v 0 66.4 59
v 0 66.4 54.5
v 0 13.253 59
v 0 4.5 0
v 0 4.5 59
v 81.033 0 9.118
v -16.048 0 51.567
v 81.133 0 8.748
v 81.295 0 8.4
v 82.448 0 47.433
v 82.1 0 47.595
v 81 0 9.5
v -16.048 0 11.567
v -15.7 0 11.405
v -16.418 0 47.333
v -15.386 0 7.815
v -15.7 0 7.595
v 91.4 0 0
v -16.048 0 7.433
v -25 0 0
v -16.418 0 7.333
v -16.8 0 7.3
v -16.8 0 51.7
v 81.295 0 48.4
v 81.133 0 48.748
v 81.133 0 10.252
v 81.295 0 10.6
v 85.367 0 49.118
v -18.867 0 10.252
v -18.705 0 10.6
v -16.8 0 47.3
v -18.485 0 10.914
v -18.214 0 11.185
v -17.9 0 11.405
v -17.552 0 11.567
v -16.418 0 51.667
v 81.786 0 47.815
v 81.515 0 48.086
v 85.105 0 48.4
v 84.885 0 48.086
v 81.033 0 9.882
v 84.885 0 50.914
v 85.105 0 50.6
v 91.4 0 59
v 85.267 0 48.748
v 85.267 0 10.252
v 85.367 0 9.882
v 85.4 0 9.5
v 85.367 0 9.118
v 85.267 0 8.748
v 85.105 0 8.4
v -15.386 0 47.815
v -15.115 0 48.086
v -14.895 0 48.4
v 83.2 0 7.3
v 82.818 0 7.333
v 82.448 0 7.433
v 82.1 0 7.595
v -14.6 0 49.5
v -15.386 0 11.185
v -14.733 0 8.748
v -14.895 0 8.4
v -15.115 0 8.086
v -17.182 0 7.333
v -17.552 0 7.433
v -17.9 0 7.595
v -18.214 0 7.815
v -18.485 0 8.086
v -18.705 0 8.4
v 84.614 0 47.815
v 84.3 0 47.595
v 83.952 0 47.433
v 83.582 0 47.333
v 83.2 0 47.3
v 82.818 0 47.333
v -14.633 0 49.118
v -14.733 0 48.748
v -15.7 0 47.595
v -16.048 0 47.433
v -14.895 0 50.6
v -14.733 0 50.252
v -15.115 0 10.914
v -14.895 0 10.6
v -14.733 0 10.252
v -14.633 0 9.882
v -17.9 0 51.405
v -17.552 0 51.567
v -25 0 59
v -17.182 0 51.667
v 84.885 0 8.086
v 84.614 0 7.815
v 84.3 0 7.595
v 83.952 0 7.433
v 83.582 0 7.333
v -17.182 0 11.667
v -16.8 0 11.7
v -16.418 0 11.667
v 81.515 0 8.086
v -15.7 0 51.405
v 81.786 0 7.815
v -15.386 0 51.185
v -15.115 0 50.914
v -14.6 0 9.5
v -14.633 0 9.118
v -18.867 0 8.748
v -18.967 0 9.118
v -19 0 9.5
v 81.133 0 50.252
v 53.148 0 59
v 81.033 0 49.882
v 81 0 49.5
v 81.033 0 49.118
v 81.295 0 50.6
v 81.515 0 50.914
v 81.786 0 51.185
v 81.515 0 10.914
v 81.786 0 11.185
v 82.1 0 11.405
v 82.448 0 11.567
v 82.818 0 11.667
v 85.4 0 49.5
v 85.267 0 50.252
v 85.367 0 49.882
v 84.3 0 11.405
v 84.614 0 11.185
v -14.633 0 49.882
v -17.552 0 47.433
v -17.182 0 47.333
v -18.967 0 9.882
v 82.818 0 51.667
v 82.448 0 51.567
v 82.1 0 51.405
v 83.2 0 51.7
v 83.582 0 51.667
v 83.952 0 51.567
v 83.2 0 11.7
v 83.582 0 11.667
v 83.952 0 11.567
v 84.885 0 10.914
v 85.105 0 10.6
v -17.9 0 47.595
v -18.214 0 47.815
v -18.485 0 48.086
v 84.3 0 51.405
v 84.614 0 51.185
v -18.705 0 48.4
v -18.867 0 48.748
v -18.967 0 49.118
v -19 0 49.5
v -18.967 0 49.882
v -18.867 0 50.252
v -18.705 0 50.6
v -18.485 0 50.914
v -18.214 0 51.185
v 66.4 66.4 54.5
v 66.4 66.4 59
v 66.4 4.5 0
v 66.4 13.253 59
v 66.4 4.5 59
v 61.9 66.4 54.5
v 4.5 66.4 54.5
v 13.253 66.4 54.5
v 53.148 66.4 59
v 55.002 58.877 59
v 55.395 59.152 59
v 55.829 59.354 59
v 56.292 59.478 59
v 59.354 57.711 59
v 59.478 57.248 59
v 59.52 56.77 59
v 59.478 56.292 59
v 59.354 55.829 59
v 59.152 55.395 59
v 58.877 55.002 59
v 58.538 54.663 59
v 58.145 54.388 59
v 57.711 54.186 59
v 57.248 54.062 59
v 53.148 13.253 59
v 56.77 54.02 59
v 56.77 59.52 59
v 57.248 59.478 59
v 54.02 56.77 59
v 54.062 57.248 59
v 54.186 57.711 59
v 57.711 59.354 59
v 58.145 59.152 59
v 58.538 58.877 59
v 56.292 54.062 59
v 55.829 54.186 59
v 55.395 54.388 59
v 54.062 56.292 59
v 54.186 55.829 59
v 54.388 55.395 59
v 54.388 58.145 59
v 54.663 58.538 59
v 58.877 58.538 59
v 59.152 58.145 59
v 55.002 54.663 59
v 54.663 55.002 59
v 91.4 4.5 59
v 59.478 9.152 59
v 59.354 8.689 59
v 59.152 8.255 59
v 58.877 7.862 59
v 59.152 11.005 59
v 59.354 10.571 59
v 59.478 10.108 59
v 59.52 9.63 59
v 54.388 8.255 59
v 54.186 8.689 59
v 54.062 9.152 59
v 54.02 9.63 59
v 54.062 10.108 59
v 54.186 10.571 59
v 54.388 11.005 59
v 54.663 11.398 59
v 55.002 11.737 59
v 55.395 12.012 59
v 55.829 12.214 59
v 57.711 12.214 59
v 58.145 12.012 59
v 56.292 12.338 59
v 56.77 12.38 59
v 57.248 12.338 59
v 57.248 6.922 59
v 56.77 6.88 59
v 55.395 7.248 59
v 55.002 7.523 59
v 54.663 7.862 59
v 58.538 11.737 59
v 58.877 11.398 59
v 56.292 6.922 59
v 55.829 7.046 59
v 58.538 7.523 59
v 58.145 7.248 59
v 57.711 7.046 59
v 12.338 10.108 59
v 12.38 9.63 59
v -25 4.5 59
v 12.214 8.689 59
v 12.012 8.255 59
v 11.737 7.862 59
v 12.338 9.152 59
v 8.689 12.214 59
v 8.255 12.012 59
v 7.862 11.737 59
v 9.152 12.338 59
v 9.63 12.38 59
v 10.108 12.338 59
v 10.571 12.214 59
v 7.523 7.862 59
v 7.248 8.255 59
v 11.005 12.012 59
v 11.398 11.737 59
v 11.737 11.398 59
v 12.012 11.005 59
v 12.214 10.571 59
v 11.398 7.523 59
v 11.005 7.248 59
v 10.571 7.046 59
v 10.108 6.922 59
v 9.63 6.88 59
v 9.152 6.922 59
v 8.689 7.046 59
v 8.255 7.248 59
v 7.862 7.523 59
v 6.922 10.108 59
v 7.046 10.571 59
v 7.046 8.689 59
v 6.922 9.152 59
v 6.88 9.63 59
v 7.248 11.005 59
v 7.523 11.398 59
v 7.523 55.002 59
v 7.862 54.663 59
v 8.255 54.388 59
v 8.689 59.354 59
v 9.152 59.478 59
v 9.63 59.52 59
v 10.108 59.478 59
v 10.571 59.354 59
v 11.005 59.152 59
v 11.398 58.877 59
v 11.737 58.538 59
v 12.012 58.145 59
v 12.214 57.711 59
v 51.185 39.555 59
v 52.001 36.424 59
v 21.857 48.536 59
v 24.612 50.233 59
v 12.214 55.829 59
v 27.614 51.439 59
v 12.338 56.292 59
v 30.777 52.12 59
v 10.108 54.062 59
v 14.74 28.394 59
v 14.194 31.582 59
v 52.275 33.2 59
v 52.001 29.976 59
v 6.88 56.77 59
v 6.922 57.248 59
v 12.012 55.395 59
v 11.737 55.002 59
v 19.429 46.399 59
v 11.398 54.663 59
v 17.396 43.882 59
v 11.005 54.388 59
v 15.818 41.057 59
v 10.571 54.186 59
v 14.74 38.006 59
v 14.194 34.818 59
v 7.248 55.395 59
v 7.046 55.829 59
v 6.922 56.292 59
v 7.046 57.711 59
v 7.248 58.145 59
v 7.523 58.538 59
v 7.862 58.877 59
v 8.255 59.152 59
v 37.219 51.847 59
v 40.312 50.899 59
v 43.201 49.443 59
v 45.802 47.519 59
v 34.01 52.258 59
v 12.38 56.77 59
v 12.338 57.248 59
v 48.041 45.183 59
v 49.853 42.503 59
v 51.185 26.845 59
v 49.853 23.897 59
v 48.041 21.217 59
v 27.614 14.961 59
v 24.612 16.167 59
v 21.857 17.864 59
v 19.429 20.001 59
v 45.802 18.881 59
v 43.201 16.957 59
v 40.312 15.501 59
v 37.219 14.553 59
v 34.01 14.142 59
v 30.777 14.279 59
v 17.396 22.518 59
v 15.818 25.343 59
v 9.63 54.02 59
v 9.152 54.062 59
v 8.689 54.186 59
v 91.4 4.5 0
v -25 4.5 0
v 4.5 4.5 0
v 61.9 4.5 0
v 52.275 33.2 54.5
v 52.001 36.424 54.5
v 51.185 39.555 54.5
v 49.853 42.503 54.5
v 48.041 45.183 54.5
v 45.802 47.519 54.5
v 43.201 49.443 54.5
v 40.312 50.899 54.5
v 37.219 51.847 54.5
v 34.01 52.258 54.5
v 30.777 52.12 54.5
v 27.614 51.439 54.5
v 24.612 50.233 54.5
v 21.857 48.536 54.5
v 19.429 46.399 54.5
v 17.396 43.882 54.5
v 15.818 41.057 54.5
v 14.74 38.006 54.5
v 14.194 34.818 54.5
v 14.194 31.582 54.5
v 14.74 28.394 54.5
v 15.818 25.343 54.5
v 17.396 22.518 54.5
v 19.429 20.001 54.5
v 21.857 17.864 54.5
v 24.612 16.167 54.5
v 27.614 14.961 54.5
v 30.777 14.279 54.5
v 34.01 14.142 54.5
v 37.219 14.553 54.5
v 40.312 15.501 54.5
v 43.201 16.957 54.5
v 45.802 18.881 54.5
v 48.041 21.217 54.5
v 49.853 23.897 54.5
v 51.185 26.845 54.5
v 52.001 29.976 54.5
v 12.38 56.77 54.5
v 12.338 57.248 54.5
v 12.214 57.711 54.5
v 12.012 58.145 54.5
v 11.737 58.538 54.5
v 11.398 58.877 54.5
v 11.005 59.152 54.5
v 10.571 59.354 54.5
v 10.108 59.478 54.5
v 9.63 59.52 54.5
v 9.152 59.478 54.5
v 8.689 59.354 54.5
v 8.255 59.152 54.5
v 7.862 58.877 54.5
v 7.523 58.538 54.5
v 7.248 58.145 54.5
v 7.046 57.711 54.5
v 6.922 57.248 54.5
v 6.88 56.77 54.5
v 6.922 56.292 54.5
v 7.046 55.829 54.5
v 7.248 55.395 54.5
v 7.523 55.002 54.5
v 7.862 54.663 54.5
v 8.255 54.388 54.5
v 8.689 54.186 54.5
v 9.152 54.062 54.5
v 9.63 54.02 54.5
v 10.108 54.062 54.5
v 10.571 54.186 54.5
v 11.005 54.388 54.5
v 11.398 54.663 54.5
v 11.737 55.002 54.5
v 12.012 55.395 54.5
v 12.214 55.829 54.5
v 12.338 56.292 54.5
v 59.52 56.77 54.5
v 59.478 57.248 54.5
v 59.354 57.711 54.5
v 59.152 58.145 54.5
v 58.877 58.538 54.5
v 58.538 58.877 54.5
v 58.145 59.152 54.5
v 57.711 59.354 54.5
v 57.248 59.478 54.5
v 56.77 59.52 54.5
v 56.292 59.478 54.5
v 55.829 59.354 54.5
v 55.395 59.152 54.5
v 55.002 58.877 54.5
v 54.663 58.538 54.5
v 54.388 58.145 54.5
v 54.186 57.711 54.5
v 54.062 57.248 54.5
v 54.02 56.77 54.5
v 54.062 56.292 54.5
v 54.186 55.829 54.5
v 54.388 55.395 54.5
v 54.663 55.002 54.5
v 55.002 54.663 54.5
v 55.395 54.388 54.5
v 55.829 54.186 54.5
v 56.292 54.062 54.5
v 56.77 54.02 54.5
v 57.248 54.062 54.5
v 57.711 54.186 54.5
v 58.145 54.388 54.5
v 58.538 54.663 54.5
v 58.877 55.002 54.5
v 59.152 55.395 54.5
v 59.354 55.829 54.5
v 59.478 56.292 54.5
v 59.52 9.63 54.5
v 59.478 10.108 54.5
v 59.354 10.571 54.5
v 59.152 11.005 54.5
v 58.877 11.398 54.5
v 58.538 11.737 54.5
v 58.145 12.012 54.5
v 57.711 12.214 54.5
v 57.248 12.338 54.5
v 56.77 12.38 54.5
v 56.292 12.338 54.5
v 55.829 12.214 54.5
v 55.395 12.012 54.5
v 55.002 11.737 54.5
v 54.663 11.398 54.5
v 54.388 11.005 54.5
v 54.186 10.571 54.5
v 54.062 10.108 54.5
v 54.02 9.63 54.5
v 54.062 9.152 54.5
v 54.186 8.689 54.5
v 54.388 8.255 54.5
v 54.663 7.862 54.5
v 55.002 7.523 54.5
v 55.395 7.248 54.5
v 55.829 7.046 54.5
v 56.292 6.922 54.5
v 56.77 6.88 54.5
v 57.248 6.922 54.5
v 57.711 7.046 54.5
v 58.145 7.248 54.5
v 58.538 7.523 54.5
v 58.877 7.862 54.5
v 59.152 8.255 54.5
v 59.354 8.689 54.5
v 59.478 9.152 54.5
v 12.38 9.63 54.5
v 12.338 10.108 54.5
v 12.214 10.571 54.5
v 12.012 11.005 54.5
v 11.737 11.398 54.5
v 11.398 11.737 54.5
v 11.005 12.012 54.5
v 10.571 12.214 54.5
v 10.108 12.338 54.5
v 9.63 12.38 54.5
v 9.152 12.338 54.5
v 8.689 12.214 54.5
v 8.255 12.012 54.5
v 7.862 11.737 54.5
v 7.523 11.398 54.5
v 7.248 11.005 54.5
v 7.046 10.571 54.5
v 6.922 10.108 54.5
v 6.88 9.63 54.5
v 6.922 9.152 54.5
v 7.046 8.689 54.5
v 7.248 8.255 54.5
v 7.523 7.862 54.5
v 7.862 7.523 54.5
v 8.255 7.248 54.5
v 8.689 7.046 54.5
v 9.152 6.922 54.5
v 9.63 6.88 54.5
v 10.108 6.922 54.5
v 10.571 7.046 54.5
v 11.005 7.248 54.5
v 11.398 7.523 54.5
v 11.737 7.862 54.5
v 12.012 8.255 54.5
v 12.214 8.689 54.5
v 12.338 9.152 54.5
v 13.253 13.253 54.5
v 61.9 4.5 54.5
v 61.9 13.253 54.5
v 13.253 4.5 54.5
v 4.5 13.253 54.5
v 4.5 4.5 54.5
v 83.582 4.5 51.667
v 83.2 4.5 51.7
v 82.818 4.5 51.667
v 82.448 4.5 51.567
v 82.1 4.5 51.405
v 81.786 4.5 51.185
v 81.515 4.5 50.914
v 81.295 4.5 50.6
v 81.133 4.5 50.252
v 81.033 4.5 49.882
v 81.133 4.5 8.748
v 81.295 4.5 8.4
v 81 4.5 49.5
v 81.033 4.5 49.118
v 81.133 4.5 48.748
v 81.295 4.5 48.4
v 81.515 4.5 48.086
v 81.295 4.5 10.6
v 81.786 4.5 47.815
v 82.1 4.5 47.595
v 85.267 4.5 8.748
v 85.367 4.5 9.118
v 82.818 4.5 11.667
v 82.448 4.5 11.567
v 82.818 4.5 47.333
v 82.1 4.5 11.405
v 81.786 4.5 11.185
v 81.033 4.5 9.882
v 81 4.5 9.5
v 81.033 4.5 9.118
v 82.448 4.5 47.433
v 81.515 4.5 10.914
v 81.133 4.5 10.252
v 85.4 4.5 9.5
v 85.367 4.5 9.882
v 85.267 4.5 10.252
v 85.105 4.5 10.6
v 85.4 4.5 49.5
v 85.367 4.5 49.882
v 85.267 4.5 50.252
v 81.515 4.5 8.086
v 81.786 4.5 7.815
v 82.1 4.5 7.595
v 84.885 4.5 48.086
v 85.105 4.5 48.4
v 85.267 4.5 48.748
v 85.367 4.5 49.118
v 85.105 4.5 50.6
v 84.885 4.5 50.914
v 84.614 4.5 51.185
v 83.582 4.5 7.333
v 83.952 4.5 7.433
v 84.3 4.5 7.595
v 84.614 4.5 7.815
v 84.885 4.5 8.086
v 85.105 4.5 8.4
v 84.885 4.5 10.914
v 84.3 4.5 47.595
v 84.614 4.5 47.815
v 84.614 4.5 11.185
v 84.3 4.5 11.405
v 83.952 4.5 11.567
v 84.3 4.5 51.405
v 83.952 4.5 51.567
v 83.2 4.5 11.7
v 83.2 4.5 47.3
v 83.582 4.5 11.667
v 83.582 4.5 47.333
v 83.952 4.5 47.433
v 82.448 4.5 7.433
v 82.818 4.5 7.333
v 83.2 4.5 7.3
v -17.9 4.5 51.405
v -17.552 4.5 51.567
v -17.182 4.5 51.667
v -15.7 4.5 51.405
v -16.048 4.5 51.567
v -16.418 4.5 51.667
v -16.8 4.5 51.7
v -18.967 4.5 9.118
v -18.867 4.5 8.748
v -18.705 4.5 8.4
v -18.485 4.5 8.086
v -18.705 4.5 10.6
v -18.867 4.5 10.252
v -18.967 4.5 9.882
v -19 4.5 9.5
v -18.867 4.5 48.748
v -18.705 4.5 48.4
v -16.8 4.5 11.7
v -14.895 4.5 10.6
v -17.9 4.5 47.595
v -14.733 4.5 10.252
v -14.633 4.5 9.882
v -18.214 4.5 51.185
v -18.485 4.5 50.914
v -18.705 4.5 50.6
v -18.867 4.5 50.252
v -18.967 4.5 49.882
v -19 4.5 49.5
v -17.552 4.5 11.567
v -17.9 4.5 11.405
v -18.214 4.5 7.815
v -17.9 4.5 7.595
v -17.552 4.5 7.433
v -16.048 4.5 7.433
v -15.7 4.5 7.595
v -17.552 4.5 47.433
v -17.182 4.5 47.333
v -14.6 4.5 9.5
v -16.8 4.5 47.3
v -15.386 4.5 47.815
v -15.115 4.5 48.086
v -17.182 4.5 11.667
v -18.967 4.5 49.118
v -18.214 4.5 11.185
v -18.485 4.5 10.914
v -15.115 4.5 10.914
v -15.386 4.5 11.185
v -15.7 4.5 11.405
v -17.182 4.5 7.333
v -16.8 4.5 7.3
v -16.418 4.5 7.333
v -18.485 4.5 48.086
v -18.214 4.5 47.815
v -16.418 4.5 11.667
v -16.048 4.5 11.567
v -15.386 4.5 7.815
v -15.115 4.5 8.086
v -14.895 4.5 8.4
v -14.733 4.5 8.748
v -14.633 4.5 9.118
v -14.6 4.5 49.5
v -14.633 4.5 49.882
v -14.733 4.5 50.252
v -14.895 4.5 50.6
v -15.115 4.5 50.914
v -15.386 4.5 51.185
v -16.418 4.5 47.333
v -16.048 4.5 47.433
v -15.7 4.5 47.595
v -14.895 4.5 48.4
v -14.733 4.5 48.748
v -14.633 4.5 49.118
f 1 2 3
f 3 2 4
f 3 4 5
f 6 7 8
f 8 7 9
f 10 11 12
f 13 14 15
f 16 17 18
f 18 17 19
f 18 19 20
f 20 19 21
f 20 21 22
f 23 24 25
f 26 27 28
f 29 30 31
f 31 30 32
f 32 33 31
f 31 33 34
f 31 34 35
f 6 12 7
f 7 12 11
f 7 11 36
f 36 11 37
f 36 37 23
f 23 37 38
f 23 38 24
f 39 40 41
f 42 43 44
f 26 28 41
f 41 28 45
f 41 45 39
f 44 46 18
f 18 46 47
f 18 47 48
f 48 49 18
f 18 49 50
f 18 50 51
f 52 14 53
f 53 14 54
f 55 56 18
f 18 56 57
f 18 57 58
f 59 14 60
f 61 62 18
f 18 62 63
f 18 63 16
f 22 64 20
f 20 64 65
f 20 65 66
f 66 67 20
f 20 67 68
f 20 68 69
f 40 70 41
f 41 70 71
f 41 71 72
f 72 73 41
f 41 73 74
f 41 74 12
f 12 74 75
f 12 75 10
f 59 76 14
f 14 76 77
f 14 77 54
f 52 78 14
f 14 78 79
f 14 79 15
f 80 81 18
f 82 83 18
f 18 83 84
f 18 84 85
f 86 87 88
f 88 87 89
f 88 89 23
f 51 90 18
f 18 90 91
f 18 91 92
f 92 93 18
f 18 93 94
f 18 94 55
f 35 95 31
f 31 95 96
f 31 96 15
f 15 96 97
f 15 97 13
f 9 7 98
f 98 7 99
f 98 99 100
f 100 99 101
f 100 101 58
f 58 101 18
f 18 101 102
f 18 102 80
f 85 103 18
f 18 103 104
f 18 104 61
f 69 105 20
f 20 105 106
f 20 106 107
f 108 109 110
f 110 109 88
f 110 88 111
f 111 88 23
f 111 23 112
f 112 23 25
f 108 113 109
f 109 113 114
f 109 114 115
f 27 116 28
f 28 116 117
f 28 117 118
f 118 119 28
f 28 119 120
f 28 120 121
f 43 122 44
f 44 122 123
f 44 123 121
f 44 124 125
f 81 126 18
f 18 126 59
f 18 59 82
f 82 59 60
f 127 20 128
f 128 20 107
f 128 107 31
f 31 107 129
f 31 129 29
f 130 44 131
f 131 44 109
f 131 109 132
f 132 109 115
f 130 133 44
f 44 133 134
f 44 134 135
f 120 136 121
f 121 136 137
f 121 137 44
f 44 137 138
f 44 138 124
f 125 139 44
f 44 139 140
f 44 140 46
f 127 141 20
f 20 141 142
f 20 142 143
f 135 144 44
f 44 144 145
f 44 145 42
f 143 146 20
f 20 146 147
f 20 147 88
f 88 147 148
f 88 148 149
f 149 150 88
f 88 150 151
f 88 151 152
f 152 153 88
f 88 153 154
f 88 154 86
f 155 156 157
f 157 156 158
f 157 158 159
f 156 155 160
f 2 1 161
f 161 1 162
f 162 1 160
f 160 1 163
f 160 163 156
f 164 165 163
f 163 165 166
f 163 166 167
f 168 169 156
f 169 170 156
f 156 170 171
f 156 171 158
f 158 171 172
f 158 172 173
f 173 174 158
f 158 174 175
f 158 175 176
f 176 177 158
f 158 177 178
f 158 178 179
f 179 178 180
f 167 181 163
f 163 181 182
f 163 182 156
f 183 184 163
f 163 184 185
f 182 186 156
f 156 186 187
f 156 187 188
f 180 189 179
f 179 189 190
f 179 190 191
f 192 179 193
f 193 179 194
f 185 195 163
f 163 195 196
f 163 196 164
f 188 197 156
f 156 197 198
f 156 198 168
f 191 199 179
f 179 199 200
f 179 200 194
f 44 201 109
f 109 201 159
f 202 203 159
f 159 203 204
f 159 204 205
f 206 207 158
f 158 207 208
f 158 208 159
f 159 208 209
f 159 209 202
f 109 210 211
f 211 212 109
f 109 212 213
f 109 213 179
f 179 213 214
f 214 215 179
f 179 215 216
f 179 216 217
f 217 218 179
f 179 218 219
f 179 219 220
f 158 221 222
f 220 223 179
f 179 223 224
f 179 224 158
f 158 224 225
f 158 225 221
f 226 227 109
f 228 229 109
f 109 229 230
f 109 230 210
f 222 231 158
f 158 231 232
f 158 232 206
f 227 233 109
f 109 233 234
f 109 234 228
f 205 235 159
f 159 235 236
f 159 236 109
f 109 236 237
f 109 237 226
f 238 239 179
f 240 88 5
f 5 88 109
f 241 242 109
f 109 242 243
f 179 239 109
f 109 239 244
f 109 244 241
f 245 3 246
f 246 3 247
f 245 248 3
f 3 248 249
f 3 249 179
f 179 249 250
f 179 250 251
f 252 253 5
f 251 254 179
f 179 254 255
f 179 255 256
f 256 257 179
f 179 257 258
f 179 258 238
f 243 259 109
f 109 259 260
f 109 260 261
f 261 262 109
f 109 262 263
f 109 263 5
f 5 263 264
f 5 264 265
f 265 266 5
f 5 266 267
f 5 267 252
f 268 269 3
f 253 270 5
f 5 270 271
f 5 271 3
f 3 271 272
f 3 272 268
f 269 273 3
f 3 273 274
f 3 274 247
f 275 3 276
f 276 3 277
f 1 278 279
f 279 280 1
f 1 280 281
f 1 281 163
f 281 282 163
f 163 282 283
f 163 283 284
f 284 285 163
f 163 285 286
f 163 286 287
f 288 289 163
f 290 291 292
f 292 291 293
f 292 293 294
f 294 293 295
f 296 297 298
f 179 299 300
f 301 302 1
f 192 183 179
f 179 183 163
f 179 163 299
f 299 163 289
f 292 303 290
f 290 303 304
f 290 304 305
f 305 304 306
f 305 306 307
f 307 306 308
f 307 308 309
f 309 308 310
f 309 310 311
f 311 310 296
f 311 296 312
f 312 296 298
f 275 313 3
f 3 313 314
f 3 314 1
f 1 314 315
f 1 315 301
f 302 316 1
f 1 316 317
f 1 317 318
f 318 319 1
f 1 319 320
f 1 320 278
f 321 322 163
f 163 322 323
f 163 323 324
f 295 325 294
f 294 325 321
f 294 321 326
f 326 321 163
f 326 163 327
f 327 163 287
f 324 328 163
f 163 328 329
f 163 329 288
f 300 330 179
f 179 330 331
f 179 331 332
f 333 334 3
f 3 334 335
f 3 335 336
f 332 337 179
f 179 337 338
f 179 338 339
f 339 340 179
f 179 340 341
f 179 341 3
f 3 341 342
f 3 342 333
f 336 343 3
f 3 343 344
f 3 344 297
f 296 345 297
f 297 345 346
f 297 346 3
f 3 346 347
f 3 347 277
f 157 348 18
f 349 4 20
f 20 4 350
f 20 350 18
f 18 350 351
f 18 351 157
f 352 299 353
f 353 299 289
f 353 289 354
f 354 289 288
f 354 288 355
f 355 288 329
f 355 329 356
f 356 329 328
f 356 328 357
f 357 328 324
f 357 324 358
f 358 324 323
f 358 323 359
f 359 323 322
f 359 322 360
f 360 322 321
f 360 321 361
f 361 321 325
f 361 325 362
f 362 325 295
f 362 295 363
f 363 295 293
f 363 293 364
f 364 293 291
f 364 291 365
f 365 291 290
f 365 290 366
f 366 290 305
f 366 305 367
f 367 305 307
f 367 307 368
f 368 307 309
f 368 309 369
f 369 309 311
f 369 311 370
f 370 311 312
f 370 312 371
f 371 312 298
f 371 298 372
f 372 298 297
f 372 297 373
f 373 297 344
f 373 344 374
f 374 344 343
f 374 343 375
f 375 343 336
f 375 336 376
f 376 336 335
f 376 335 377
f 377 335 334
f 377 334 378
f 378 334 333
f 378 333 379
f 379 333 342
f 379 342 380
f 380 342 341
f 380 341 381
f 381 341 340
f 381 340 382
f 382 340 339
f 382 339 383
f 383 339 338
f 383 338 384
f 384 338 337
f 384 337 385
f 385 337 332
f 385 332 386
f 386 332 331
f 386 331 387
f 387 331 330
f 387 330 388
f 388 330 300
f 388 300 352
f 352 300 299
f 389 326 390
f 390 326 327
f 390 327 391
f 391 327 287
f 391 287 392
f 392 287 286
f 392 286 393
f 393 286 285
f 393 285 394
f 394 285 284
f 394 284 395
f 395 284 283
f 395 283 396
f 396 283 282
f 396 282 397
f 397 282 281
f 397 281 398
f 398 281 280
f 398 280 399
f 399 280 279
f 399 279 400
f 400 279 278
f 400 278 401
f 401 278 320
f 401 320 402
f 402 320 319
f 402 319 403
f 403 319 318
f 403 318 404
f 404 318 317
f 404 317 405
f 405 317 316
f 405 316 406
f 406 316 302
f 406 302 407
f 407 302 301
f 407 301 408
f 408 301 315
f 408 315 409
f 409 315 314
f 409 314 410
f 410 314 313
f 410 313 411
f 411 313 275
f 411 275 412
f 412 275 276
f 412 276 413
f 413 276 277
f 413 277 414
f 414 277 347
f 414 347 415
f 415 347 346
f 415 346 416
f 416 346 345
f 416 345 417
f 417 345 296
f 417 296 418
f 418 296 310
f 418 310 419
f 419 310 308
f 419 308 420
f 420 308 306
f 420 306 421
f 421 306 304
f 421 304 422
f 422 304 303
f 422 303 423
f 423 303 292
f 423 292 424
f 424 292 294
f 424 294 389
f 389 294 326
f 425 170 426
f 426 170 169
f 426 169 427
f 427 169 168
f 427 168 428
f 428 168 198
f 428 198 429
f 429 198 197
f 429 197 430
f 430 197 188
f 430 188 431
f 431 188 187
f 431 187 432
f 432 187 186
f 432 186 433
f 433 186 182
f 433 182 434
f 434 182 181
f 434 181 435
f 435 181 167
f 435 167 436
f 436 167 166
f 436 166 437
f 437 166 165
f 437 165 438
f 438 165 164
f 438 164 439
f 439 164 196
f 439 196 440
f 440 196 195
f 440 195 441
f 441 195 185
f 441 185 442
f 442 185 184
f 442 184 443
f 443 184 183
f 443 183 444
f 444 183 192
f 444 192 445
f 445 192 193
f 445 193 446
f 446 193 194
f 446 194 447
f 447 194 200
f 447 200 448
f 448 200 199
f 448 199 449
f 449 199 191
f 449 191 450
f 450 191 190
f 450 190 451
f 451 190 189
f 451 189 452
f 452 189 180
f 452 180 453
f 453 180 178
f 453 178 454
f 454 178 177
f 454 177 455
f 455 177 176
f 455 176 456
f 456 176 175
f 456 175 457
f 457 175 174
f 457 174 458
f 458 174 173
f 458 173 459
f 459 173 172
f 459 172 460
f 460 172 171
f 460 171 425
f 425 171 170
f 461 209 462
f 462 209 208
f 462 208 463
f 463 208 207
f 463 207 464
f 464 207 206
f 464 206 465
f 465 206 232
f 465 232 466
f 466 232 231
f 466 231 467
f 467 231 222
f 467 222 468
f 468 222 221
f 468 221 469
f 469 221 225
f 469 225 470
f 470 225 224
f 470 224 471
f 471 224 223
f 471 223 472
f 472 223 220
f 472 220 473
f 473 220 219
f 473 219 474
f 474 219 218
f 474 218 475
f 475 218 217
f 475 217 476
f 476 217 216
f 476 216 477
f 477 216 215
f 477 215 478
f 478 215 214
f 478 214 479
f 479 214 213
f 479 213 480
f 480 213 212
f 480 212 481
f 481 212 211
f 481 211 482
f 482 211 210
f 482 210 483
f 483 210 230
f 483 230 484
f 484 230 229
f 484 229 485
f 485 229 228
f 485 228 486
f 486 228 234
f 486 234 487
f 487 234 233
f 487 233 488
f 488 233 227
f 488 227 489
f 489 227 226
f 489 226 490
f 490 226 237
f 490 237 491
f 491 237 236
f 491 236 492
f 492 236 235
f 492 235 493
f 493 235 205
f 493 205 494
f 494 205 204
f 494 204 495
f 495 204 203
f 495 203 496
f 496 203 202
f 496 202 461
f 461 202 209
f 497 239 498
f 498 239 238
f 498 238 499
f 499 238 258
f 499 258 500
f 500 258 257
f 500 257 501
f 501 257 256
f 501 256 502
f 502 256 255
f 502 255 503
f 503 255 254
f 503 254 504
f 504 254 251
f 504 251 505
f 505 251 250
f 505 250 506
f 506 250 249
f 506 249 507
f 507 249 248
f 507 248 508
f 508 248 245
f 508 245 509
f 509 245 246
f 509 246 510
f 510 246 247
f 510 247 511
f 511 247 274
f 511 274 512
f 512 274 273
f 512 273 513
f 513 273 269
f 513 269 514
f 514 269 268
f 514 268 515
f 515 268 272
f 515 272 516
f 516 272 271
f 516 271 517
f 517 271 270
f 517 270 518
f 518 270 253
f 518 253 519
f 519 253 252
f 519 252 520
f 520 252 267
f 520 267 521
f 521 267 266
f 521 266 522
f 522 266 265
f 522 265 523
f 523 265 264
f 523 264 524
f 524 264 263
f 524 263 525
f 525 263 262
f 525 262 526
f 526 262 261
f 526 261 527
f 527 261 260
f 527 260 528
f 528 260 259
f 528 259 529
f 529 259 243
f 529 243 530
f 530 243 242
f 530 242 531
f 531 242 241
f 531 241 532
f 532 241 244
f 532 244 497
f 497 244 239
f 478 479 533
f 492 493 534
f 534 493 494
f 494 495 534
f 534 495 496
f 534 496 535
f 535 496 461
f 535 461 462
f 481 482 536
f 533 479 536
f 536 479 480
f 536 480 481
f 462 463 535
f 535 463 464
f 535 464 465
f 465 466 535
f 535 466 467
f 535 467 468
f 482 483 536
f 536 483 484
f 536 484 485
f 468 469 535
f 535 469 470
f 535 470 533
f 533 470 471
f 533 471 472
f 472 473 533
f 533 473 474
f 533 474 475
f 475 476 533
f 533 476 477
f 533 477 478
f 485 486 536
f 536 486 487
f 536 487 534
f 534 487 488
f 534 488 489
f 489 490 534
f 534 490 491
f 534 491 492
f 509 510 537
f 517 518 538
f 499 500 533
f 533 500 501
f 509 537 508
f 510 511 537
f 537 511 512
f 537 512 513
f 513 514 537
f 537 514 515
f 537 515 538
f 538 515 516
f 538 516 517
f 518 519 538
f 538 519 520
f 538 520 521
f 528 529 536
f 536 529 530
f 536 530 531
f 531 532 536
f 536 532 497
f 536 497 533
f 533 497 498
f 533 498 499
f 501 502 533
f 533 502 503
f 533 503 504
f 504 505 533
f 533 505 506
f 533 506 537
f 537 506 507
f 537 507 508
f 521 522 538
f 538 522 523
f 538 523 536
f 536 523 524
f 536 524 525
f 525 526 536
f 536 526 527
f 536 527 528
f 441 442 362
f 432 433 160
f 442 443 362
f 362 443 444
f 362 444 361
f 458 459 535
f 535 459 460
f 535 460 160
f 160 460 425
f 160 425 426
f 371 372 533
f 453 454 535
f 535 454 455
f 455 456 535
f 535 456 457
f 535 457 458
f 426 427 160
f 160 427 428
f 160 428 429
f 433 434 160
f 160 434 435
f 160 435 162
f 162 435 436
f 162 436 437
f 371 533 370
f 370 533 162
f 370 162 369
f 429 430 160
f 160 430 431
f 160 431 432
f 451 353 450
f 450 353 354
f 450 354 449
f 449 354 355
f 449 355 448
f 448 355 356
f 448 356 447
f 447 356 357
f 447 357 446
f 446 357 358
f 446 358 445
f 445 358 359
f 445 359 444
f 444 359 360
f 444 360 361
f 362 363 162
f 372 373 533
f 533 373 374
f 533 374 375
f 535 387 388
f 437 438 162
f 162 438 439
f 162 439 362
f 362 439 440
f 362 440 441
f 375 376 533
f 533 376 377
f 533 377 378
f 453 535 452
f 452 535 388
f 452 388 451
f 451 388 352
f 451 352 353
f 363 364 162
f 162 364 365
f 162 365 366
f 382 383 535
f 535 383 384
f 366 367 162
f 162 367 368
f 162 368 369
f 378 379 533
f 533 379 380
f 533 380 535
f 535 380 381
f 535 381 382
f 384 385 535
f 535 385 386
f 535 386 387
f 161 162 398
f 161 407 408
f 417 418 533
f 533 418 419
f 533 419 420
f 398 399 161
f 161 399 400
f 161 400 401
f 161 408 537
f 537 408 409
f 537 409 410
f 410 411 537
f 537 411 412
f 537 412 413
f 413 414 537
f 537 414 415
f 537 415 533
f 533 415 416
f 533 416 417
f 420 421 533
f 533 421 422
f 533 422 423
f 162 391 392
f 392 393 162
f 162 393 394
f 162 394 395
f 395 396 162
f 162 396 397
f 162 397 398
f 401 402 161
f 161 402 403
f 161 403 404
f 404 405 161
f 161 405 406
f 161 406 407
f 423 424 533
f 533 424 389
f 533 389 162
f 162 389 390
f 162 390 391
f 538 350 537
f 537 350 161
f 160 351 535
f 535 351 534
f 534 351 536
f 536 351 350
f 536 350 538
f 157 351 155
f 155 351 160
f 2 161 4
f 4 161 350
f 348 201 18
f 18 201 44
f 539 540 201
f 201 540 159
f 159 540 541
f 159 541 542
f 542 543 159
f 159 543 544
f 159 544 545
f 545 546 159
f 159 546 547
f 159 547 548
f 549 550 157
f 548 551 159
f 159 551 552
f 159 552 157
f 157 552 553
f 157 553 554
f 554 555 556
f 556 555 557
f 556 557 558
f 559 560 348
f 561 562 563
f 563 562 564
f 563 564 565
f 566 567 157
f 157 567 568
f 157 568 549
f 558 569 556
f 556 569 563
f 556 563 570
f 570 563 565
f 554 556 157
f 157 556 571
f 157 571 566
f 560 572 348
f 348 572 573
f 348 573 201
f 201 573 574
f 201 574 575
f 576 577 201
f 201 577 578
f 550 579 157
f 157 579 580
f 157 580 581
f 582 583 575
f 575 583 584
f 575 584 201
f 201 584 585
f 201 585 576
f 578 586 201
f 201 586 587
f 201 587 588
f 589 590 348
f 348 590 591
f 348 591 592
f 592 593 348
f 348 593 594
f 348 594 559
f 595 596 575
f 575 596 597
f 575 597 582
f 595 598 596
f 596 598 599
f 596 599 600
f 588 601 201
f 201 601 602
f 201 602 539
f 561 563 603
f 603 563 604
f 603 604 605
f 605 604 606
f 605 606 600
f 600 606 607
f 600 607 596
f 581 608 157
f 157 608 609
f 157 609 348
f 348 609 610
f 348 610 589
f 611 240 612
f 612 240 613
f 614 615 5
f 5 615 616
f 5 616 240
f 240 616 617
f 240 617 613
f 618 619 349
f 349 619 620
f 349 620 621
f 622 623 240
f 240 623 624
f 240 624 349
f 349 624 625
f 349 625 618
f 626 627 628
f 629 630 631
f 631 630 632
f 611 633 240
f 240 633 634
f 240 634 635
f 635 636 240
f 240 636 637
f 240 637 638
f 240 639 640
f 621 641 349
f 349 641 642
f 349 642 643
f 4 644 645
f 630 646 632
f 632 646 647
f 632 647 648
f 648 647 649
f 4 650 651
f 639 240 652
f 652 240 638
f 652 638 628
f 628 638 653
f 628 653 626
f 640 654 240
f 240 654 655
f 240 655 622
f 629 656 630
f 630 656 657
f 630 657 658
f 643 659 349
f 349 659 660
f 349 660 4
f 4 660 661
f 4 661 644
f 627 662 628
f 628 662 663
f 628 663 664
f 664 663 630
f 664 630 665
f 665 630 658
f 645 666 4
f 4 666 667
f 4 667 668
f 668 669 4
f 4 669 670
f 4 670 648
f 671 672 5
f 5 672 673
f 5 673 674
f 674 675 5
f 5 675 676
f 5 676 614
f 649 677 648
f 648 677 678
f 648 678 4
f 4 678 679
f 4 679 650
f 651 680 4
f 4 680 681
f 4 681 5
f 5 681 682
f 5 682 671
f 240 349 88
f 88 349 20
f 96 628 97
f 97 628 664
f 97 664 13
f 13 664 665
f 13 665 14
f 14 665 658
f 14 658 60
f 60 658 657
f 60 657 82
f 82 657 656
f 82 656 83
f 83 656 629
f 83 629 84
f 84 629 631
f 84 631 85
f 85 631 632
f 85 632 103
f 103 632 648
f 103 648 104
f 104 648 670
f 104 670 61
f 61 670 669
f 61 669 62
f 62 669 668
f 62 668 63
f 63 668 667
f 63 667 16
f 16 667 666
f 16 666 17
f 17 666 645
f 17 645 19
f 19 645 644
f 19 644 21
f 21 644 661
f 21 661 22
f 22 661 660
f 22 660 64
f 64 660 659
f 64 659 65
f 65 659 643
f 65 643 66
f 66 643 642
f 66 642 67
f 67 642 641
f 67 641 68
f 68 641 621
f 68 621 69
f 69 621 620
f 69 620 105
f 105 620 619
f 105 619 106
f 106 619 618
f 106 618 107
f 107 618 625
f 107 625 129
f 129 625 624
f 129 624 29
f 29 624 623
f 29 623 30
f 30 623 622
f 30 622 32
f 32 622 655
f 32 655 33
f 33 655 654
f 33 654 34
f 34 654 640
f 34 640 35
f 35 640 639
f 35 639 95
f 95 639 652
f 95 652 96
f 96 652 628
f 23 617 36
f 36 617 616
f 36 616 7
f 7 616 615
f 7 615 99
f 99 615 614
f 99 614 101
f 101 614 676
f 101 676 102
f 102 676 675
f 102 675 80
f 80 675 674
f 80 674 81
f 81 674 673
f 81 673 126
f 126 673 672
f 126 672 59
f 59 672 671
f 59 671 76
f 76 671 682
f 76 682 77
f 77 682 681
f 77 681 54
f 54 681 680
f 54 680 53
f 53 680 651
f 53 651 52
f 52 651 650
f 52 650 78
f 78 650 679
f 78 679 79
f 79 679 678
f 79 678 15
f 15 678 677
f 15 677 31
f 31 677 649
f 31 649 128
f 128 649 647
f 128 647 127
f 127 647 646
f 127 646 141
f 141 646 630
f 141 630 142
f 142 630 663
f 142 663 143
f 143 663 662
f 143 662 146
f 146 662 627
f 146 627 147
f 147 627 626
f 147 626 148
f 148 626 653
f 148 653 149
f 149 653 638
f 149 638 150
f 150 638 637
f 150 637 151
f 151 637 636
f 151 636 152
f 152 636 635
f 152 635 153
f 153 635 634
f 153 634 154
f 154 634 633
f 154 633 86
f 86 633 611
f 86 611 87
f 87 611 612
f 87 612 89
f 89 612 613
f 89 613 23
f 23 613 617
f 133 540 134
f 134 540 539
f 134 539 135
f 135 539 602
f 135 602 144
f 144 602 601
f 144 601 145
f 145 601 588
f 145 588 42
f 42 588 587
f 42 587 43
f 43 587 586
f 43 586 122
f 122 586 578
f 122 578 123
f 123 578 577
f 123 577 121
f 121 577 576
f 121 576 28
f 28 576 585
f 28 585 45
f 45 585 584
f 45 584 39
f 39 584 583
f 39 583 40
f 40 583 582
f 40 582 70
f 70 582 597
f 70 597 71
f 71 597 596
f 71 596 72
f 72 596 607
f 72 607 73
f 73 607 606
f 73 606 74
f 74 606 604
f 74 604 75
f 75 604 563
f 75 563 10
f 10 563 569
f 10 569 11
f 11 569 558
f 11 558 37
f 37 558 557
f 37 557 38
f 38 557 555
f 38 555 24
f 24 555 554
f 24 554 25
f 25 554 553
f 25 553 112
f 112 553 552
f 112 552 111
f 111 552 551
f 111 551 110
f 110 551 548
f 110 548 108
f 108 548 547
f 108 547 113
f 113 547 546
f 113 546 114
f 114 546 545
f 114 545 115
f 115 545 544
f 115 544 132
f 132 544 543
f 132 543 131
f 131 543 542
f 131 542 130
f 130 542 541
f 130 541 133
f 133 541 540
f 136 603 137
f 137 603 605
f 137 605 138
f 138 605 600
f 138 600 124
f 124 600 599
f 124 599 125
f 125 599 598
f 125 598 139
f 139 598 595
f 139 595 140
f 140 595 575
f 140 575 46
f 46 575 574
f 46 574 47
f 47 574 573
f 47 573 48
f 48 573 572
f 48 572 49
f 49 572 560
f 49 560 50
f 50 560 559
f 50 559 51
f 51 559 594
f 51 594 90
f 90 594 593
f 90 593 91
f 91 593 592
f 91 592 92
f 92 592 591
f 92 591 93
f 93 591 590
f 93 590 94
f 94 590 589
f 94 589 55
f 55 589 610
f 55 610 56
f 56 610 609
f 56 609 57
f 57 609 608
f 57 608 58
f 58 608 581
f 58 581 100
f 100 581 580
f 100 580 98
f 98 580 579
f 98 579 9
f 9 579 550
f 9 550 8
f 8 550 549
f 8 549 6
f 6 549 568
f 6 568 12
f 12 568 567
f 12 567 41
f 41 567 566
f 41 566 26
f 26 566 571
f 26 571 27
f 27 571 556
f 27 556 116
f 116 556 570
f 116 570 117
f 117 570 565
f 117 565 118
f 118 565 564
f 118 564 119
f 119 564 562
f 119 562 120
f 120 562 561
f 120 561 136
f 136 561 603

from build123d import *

# Parameters (mm, degrees)
SKETCH1_W           = 66.4
SKETCH1_H           = 66.4
BOSS_EXTRUDE1_DEPTH = 59
SKETCH2_R           = 19.075
SKETCH2_R_2         = 2.75
CUT_EXTRUDE1_DEPTH  = 111.900495941
SKETCH3_W           = 57.4
SKETCH3_H           = 54.5
CUT_EXTRUDE2_DEPTH  = 61.9
CUT_EXTRUDE3_DEPTH  = 111.900495941
SKETCH5_W           = 116.4
SKETCH5_H           = 59
BOSS_EXTRUDE2_DEPTH = 4.5
SKETCH6_R           = 2.2
CUT_EXTRUDE4_DEPTH  = 126.166169551


with BuildPart() as part:
    # Sketch1 → Boss-Extrude1 (new body)
    with BuildSketch(Plane.XY):
        with Locations((33.2, 33.2)):
            Rectangle(SKETCH1_W, SKETCH1_H)
    extrude(amount=BOSS_EXTRUDE1_DEPTH)

    # Sketch2 → Cut-Extrude1 (cut, through all)
    with BuildSketch(Plane.XY.offset(59)):
        with Locations((33.2, 33.2)):
            Circle(SKETCH2_R)
        with Locations((9.63, 56.77)):
            Circle(SKETCH2_R_2)
        with Locations((56.77, 56.77)):
            Circle(SKETCH2_R_2)
        with Locations((56.77, 9.63)):
            Circle(SKETCH2_R_2)
        with Locations((9.63, 9.63)):
            Circle(SKETCH2_R_2)
    extrude(amount=-CUT_EXTRUDE1_DEPTH, mode=Mode.SUBTRACT)

    # Sketch3 → Cut-Extrude2 (cut)
    with BuildSketch(Plane(origin=(0, 66.4, 0), x_dir=(1, 0, 0), z_dir=(0, 1, 0))):
        with Locations((33.2, -27.25)):
            Rectangle(SKETCH3_W, SKETCH3_H)
    extrude(amount=-CUT_EXTRUDE2_DEPTH, mode=Mode.SUBTRACT)

    # Sketch4 → Cut-Extrude3 (cut, through all)
    with BuildSketch(Plane(origin=(66.4, 0, 0), x_dir=(0, 0, -1), z_dir=(1, 0, 0))):
        Polygon((-54.5, 66.4), (0, 66.4), (0, 4.5), align=None)
    extrude(amount=-CUT_EXTRUDE3_DEPTH, mode=Mode.SUBTRACT)

    # Sketch5 → Boss-Extrude2 (add)
    with BuildSketch(Plane.XZ):
        with Locations((33.2, 29.5)):
            Rectangle(SKETCH5_W, SKETCH5_H)
    extrude(amount=-BOSS_EXTRUDE2_DEPTH)

    # Sketch6 → Cut-Extrude4 (cut, through all)
    with BuildSketch(Plane(origin=(0, 4.5, 0), x_dir=(1, 0, 0), z_dir=(0, 1, 0))):
        with Locations(Location((-16.8, -9.5, 0), (0, 0, 270))):
            Circle(SKETCH6_R)
        with Locations(Location((-16.8, -49.5, 0), (0, 0, 270))):
            Circle(SKETCH6_R)
        with Locations(Location((83.2, -49.5, 0), (0, 0, 270))):
            Circle(SKETCH6_R)
        with Locations(Location((83.2, -9.5, 0), (0, 0, 270))):
            Circle(SKETCH6_R)
    extrude(amount=-CUT_EXTRUDE4_DEPTH, mode=Mode.SUBTRACT)


solid = part.part
